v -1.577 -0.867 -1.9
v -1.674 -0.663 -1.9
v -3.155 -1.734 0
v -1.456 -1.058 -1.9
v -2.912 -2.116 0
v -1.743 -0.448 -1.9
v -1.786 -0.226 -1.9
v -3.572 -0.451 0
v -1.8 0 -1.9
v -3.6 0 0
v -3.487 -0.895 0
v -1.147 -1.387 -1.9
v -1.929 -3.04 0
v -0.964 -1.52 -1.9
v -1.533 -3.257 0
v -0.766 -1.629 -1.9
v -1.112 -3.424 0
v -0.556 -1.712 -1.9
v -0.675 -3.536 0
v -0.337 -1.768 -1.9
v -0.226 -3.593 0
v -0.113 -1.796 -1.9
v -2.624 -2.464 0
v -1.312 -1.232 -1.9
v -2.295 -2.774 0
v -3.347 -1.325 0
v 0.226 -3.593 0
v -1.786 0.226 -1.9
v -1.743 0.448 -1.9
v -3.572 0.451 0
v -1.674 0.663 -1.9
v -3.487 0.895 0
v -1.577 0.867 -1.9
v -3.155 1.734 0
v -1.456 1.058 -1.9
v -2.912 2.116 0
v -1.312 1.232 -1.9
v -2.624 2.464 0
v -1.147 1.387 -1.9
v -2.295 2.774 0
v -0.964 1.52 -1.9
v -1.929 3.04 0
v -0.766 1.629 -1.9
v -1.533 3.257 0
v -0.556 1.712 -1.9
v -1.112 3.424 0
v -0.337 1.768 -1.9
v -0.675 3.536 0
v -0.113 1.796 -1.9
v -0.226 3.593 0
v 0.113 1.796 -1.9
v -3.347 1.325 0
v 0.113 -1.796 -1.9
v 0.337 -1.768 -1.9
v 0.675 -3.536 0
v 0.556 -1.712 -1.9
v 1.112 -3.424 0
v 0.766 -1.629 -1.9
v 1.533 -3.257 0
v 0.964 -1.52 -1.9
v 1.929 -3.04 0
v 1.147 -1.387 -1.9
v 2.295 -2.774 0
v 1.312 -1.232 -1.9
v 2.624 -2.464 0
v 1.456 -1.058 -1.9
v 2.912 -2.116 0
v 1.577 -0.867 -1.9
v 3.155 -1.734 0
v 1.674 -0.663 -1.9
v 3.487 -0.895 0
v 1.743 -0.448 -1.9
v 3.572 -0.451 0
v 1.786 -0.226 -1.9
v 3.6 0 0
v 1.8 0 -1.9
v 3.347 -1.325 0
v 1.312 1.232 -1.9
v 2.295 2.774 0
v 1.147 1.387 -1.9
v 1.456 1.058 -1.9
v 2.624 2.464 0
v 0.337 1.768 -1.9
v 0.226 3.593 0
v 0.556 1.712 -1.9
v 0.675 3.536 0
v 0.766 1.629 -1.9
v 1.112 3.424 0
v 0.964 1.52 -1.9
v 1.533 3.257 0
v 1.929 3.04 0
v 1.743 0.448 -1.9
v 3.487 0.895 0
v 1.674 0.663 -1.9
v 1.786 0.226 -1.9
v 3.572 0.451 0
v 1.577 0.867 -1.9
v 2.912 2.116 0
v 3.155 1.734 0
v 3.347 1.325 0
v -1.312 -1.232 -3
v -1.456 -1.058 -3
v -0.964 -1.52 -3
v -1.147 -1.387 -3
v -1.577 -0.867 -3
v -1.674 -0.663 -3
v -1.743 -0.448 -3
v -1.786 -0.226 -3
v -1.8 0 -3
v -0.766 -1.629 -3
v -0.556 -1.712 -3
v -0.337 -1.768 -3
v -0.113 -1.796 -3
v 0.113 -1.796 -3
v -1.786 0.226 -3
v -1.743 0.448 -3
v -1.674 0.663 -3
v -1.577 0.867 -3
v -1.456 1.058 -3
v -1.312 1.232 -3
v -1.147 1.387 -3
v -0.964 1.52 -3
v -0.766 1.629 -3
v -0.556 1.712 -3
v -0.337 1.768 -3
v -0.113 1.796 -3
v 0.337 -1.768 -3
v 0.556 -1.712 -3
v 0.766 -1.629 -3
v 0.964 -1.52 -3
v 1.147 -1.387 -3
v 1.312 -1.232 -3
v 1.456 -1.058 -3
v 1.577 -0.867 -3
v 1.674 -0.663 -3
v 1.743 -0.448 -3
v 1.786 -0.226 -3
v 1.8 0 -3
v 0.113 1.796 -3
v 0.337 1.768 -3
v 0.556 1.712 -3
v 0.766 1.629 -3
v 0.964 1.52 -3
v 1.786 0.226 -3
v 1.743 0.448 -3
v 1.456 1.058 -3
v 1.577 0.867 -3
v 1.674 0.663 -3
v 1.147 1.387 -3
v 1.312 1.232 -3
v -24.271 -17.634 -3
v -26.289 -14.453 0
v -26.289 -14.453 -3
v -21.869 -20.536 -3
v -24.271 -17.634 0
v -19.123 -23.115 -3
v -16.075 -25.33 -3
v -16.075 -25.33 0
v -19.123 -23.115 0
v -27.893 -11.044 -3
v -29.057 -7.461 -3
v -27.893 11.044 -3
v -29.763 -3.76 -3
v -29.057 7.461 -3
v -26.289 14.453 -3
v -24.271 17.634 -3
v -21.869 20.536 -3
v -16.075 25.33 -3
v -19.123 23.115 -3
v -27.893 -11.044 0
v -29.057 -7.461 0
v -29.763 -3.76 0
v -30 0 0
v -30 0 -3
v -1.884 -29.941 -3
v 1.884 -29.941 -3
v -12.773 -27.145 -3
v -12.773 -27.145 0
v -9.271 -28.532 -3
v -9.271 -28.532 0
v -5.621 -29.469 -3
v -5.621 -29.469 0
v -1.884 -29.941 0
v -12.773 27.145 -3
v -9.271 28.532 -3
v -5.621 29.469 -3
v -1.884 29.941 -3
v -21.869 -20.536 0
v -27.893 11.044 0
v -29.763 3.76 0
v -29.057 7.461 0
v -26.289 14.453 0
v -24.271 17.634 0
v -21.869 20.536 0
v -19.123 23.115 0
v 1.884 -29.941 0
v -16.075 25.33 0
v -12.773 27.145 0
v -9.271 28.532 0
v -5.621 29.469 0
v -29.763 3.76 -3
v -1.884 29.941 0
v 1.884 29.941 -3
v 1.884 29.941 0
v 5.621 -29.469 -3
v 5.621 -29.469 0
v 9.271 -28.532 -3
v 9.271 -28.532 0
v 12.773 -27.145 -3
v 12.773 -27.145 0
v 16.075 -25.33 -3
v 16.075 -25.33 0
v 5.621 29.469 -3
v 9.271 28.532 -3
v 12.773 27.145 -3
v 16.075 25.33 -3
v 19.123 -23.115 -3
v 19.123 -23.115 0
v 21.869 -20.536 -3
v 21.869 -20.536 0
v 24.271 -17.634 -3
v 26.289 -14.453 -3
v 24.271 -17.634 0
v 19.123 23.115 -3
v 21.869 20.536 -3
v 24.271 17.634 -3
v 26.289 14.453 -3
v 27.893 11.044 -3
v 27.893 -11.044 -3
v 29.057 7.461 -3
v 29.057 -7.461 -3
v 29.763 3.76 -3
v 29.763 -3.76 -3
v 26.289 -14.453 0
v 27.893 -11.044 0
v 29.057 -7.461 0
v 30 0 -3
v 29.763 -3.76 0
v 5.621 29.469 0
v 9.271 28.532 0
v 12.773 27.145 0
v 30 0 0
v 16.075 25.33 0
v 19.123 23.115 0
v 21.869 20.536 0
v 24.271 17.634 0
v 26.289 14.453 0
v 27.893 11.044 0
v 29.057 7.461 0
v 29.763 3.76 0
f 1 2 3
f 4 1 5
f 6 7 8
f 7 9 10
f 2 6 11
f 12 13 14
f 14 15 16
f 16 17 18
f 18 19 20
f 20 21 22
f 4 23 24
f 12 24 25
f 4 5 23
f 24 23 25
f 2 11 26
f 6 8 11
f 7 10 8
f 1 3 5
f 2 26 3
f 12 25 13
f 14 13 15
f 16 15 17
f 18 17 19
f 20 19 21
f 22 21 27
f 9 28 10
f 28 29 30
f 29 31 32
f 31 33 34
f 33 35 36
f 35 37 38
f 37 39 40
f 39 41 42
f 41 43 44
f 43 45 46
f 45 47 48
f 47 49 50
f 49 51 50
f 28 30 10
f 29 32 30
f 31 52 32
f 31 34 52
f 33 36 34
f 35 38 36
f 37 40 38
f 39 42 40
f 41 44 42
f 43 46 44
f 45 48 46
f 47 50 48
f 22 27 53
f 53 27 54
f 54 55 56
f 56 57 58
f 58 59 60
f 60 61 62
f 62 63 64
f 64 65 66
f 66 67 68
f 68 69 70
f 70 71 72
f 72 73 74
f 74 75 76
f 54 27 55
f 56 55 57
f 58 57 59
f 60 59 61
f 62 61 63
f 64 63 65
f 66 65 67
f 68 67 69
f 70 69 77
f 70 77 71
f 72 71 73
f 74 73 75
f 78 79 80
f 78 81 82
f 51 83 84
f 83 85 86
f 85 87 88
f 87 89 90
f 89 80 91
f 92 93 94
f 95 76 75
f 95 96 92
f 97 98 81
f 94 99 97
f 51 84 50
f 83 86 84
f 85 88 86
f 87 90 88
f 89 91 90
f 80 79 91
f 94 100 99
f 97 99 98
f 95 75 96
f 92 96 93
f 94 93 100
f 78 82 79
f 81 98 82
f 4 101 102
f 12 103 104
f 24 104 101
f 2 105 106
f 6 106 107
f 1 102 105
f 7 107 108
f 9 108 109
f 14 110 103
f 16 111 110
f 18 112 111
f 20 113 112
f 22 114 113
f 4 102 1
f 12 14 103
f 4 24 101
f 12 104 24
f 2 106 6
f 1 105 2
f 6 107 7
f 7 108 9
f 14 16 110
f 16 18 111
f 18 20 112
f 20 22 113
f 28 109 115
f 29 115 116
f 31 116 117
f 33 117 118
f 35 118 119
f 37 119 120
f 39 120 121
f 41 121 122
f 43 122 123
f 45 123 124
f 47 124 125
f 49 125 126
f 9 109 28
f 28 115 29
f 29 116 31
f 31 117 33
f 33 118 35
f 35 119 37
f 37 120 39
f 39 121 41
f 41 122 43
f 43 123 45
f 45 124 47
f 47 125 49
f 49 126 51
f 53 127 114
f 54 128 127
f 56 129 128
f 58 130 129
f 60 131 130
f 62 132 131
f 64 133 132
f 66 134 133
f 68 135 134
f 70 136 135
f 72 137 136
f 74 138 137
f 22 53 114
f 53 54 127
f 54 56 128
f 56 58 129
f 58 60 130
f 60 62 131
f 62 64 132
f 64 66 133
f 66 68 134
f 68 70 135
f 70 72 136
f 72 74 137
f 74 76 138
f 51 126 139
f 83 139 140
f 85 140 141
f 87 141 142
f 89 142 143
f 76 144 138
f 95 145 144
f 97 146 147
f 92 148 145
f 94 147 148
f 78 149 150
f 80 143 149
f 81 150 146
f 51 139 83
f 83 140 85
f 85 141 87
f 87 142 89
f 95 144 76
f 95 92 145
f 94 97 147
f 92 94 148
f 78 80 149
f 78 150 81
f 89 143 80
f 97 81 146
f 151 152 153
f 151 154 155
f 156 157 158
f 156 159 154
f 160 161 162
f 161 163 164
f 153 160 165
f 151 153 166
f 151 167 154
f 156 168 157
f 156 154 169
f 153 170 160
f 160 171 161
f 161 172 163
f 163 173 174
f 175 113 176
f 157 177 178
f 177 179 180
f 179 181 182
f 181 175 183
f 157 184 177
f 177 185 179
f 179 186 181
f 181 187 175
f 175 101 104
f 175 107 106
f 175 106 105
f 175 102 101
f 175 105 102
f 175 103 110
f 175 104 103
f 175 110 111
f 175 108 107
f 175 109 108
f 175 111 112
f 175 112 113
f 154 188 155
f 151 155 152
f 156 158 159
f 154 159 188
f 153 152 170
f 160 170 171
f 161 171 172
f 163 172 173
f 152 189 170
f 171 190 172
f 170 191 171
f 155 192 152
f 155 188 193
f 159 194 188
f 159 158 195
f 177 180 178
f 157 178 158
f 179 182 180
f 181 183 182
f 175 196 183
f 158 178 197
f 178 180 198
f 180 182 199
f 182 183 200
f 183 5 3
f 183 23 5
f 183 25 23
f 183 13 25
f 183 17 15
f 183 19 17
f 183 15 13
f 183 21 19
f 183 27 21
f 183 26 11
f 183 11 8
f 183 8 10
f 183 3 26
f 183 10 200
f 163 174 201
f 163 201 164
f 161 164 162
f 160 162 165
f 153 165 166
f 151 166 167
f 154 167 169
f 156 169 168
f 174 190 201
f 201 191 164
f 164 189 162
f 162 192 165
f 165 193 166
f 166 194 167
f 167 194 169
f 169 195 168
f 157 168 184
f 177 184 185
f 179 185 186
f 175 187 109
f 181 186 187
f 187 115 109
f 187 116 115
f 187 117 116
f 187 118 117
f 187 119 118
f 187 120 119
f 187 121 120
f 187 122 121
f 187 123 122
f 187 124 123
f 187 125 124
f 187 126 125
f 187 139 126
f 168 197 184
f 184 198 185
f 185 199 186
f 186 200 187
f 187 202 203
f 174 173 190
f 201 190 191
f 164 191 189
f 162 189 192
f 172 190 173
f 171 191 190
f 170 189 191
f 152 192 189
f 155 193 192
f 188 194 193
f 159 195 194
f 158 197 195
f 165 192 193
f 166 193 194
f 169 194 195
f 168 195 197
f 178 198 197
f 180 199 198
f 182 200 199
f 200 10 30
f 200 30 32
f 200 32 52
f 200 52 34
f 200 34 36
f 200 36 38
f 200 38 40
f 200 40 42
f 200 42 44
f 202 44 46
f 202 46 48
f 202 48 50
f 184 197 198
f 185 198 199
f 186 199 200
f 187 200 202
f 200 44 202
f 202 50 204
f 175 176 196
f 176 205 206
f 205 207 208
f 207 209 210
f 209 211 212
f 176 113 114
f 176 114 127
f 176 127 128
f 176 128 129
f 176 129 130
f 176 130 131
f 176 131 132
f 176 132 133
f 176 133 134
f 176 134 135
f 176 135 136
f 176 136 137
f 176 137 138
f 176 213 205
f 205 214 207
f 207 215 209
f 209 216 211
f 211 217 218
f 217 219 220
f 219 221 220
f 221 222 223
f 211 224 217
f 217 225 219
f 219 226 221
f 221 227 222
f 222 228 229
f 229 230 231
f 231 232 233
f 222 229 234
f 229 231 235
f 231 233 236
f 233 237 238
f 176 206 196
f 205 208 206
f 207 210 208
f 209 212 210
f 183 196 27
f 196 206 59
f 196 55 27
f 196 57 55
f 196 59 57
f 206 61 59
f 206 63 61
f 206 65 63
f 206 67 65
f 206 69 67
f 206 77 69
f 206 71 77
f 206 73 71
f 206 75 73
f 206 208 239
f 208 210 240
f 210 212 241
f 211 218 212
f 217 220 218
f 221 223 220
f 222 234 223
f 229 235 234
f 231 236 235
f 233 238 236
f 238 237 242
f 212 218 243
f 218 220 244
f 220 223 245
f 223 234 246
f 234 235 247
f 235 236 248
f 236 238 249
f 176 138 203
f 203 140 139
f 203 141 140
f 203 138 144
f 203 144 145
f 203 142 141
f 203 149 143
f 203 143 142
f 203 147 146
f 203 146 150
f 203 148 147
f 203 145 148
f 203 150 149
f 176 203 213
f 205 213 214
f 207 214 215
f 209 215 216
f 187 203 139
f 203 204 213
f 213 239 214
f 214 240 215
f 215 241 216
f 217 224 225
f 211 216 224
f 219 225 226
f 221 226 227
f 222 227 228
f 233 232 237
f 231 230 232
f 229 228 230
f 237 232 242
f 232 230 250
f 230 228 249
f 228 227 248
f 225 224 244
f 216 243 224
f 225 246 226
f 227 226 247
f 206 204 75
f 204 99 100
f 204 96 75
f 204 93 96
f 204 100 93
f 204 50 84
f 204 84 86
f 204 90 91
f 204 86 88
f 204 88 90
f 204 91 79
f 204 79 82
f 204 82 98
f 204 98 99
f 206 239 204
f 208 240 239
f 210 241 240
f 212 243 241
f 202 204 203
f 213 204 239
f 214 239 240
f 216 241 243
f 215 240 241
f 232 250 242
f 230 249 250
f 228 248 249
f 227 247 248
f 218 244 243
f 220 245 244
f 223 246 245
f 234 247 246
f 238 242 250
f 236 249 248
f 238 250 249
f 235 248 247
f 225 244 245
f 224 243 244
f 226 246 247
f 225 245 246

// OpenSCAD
$fn = 50;


difference() {
	union() {
		translate(v = [0, 0, -3.0000000000]) {
			cylinder(h = 3, r = 30.0000000000);
		}
	}
	union() {
		translate(v = [0, 0, 0]) {
			rotate(a = [0, 0, 0]) {
				difference() {
					union() {
						translate(v = [0, 0, -6.0000000000]) {
							cylinder(h = 6, r = 1.5000000000);
						}
						translate(v = [0, 0, -1.9000000000]) {
							cylinder(h = 1.9000000000, r1 = 1.8000000000, r2 = 3.6000000000);
						}
						translate(v = [0, 0, -6.0000000000]) {
							cylinder(h = 6, r = 1.8000000000);
						}
						translate(v = [0, 0, -6.0000000000]) {
							cylinder(h = 6, r = 1.5000000000);
						}
					}
					union();
				}
			}
		}
	}
}
